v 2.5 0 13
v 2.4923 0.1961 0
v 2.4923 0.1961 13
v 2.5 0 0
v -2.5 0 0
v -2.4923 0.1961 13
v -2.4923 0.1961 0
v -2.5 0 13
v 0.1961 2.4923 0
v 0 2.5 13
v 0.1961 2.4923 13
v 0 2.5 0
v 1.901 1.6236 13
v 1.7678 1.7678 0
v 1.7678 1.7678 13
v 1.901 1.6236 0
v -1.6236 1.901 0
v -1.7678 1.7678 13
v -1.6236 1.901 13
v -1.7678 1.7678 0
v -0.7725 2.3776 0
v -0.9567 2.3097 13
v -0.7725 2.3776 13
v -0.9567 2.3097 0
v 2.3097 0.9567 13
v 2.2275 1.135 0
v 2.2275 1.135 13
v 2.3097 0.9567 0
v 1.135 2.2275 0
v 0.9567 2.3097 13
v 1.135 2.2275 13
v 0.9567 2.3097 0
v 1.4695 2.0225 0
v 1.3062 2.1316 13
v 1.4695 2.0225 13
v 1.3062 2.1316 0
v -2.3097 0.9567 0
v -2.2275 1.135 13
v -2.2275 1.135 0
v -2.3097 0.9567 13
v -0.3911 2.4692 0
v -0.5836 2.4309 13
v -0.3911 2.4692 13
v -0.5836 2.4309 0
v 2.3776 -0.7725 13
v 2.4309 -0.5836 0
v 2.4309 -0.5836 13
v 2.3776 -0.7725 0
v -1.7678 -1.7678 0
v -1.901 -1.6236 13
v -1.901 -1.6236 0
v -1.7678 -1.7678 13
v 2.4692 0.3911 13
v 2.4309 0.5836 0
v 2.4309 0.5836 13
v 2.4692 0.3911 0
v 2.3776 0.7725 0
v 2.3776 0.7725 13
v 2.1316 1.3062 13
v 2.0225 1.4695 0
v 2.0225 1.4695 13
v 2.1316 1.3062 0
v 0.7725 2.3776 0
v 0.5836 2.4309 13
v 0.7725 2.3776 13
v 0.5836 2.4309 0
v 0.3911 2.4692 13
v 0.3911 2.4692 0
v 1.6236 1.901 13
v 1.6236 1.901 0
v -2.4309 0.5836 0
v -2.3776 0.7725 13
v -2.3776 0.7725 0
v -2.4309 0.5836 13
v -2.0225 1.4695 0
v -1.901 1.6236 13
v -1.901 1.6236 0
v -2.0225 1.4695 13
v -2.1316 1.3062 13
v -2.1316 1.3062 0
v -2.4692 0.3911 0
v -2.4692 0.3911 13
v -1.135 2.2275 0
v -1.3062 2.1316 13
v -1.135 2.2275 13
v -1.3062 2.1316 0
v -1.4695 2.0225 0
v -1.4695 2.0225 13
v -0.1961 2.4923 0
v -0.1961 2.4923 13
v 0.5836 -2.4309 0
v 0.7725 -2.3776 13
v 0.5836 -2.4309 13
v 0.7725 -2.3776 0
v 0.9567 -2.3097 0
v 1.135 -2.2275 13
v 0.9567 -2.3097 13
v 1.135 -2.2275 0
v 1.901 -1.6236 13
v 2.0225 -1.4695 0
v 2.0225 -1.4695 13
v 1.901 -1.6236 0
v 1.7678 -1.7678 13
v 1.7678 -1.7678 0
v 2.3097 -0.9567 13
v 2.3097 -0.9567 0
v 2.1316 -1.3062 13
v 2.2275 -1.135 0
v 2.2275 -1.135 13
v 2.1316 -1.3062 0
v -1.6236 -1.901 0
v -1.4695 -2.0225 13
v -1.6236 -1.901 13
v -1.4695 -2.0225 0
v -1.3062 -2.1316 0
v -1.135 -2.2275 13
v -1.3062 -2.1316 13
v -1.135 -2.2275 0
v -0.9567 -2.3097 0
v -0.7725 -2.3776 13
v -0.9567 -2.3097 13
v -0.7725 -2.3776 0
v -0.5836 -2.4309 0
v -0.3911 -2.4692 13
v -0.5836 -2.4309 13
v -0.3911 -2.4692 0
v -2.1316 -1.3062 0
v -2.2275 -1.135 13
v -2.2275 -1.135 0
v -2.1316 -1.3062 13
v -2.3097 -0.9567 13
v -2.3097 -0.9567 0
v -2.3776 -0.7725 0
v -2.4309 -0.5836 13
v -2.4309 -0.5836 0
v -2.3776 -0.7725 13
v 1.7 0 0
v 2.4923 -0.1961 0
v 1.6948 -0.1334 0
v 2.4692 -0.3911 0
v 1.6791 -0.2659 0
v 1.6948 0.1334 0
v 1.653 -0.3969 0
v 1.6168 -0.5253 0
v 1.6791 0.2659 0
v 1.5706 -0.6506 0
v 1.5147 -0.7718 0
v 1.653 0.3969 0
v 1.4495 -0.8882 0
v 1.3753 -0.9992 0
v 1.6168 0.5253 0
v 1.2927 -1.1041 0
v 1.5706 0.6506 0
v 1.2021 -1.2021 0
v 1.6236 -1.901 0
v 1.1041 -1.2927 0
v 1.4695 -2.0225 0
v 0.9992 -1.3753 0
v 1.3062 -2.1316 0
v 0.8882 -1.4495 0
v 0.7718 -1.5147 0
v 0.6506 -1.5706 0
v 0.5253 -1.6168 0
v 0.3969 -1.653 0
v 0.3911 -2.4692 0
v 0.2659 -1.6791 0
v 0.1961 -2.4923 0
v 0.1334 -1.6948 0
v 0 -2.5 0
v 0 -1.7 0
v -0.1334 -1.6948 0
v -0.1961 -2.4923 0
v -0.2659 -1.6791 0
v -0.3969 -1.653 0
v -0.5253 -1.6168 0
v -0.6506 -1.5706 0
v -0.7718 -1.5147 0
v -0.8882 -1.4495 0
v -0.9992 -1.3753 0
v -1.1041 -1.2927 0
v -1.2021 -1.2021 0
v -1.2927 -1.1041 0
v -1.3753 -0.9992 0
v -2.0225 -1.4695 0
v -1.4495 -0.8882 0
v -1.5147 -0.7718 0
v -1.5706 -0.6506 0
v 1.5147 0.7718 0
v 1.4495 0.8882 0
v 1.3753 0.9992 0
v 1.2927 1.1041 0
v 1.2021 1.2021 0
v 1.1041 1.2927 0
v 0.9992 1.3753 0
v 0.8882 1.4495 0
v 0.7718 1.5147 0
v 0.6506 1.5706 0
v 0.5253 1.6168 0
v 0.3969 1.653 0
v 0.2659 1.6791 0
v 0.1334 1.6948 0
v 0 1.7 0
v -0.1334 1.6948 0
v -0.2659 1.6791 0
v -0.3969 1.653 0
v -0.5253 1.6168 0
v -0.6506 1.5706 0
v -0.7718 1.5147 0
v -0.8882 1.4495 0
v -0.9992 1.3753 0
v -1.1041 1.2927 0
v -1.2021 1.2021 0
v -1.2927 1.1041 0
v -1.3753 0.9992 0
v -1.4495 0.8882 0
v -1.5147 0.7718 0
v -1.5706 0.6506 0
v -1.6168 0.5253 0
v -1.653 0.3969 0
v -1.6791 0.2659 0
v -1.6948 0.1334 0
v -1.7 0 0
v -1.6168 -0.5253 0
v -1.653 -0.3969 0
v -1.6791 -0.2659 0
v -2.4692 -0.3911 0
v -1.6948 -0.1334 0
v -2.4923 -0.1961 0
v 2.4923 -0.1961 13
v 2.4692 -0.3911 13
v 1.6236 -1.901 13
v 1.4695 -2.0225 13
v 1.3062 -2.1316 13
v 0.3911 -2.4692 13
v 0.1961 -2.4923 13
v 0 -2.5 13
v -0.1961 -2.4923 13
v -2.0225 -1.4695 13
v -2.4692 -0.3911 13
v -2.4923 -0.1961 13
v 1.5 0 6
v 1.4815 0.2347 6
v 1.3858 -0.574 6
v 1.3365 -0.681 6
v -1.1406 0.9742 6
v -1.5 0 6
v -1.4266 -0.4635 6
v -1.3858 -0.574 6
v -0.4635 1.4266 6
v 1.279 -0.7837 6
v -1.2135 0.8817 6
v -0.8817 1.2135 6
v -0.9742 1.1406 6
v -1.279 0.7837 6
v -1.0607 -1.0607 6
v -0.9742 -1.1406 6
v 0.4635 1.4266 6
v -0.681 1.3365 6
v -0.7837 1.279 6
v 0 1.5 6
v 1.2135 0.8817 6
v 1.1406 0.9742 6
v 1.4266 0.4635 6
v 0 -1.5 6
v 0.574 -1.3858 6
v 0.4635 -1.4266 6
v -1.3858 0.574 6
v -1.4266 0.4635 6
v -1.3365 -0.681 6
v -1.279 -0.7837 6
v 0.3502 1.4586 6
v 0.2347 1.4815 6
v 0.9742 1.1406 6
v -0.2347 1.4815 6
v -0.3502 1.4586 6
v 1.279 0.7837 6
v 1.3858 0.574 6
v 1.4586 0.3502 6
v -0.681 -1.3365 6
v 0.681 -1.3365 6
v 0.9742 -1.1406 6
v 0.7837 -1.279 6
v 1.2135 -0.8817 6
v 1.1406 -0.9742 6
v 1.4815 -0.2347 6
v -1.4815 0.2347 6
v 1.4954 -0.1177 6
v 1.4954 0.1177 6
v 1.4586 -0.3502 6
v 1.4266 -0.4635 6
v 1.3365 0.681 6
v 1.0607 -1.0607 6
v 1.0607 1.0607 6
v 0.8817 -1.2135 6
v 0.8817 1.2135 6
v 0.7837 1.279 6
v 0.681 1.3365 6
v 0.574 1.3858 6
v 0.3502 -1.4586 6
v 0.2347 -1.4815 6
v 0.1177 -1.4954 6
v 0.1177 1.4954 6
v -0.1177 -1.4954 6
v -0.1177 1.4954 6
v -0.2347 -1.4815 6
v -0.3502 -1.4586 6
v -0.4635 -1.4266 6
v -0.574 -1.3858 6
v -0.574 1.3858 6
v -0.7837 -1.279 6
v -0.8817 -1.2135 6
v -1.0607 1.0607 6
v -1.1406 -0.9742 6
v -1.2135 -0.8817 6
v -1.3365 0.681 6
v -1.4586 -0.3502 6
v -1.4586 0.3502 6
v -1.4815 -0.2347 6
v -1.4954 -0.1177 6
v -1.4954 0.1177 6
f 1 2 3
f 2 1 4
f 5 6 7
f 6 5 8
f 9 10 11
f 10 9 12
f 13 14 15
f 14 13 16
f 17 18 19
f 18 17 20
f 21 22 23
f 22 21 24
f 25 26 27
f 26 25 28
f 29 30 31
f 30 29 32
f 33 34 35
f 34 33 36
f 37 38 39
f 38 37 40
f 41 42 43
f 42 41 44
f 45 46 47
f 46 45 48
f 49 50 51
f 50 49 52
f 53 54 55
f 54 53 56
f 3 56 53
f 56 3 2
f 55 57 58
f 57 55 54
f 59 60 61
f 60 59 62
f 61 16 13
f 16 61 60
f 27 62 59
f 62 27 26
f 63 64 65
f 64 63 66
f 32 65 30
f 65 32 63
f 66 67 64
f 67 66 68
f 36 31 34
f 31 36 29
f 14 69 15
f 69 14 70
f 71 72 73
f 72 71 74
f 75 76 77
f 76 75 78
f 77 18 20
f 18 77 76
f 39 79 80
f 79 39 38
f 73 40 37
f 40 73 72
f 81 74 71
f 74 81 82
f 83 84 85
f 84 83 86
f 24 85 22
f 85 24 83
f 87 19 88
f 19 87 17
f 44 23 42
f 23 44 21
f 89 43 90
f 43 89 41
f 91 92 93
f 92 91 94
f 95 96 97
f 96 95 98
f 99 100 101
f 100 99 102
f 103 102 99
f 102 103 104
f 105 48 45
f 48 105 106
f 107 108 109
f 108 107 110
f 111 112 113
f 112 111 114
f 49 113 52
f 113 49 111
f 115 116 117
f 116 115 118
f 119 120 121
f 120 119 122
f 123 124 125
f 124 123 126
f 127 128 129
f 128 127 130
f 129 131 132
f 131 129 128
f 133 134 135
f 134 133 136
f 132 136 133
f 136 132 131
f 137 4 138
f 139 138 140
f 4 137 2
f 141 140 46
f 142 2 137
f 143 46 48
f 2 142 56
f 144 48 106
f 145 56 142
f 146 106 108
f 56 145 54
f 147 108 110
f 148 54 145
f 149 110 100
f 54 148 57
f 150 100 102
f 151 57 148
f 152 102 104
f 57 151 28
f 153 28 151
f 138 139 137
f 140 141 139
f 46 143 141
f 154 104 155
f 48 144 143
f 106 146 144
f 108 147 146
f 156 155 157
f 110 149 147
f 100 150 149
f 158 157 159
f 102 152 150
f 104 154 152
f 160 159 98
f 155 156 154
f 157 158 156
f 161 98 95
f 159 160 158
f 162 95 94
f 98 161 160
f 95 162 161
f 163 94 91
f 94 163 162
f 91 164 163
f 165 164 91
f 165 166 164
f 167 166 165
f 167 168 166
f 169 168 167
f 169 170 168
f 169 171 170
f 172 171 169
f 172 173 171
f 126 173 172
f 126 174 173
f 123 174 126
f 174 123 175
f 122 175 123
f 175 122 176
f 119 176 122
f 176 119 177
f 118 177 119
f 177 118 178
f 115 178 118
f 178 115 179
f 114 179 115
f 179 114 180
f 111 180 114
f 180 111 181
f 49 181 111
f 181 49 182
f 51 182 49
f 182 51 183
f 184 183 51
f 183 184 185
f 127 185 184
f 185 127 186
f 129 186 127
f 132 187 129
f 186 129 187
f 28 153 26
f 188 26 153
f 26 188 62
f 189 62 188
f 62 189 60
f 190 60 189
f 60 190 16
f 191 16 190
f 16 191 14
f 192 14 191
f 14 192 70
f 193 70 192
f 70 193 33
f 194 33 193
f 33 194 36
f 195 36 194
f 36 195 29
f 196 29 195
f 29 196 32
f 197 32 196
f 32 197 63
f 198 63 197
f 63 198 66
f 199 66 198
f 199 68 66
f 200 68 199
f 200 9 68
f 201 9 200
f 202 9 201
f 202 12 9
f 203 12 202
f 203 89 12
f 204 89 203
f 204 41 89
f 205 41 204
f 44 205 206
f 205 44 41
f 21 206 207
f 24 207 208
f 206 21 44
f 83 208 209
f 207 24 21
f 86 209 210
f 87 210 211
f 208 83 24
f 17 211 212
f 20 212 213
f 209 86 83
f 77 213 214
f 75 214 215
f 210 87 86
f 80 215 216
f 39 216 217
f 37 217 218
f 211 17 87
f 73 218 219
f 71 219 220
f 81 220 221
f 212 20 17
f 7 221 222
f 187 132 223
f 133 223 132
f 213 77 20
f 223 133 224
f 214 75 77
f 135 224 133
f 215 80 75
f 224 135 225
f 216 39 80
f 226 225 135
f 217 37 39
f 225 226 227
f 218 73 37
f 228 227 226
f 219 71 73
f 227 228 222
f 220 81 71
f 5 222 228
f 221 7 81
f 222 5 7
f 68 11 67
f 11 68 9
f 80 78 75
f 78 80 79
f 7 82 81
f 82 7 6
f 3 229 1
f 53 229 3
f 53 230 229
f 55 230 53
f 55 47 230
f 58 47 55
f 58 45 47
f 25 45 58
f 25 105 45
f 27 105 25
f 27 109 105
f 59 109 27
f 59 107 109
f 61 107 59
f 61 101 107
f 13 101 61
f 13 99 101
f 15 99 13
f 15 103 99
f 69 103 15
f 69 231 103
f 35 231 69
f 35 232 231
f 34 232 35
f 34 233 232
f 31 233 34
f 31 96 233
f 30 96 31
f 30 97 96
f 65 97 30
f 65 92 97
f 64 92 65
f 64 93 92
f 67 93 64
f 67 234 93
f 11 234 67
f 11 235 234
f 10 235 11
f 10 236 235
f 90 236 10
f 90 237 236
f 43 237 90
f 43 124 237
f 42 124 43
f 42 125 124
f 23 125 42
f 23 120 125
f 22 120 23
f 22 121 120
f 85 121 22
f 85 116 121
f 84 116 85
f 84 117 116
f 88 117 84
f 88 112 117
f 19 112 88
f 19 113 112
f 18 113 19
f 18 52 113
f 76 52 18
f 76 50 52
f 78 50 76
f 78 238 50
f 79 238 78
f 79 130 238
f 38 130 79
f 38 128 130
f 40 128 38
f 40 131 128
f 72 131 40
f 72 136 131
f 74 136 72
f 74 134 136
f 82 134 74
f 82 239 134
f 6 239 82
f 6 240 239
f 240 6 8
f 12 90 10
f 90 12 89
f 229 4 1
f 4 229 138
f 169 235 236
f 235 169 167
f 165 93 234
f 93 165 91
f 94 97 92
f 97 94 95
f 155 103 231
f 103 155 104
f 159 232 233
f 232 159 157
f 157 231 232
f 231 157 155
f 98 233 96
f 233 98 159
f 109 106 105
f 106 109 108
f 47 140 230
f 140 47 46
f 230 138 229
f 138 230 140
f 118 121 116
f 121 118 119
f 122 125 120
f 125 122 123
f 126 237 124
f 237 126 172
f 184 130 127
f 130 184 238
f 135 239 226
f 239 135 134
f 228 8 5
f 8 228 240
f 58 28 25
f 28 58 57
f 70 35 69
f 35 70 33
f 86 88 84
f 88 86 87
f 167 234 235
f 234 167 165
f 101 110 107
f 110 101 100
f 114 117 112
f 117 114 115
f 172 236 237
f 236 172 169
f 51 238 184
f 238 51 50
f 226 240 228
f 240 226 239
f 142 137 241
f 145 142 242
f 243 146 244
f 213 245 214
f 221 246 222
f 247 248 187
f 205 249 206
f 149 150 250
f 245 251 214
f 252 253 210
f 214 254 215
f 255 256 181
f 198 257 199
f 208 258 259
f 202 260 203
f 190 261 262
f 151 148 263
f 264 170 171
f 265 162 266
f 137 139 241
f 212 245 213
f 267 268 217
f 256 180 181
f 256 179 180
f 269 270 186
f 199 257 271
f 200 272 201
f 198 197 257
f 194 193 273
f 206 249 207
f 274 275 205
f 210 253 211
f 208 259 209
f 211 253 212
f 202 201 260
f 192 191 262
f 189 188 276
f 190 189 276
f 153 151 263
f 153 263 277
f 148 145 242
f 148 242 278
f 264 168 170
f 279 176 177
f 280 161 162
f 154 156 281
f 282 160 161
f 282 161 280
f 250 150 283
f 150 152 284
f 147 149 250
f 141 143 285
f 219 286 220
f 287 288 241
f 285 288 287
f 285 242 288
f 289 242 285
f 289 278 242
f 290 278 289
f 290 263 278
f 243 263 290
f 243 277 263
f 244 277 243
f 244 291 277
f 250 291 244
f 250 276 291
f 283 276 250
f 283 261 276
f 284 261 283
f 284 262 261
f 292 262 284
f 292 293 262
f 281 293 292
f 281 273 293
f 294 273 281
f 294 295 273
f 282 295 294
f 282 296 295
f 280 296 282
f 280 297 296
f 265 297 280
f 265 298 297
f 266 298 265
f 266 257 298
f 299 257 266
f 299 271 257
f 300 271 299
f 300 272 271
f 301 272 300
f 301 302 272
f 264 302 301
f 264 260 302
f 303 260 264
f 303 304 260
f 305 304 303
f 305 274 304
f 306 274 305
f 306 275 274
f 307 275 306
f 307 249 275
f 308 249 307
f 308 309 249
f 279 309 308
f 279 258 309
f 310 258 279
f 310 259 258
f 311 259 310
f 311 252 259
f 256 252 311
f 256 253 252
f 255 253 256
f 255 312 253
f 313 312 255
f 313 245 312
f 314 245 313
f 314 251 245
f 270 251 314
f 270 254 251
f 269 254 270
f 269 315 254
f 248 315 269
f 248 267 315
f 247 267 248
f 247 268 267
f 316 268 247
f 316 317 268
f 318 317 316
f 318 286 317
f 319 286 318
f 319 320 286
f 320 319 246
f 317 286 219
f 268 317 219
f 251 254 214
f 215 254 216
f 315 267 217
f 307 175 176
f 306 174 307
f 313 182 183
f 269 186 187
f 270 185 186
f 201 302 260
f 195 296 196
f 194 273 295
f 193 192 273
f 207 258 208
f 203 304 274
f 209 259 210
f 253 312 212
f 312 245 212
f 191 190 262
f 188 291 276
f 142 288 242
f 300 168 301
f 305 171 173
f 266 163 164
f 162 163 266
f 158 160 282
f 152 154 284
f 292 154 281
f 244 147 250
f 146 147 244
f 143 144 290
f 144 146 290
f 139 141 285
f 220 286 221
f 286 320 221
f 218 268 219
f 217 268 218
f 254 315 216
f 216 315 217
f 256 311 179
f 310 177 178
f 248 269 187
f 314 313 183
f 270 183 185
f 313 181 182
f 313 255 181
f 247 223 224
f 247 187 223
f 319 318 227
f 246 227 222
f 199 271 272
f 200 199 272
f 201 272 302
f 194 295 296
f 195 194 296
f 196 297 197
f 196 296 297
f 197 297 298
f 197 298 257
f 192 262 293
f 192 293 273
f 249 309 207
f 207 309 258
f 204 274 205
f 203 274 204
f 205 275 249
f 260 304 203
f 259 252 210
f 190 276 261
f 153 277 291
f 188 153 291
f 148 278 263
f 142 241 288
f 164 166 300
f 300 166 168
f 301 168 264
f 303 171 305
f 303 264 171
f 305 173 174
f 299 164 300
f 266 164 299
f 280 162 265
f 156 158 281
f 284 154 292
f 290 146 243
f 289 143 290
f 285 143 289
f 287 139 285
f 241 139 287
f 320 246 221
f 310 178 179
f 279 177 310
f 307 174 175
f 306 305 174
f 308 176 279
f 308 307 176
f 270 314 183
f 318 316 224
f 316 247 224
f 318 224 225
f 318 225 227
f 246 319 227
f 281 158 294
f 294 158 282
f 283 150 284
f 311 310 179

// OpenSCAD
$fn = 80;
button_outer_diameter = 5;
button_outer_height = 13;

button_inner_height = 6;
button_inner_top_diameter = 3;
button_inner_base_diameter = 3.4;

difference() {
    cylinder(button_outer_height, d1 = button_outer_diameter, d2 = button_outer_diameter);
    cylinder(button_inner_height, d1 = button_inner_base_diameter, d2 = button_inner_top_diameter);
}
